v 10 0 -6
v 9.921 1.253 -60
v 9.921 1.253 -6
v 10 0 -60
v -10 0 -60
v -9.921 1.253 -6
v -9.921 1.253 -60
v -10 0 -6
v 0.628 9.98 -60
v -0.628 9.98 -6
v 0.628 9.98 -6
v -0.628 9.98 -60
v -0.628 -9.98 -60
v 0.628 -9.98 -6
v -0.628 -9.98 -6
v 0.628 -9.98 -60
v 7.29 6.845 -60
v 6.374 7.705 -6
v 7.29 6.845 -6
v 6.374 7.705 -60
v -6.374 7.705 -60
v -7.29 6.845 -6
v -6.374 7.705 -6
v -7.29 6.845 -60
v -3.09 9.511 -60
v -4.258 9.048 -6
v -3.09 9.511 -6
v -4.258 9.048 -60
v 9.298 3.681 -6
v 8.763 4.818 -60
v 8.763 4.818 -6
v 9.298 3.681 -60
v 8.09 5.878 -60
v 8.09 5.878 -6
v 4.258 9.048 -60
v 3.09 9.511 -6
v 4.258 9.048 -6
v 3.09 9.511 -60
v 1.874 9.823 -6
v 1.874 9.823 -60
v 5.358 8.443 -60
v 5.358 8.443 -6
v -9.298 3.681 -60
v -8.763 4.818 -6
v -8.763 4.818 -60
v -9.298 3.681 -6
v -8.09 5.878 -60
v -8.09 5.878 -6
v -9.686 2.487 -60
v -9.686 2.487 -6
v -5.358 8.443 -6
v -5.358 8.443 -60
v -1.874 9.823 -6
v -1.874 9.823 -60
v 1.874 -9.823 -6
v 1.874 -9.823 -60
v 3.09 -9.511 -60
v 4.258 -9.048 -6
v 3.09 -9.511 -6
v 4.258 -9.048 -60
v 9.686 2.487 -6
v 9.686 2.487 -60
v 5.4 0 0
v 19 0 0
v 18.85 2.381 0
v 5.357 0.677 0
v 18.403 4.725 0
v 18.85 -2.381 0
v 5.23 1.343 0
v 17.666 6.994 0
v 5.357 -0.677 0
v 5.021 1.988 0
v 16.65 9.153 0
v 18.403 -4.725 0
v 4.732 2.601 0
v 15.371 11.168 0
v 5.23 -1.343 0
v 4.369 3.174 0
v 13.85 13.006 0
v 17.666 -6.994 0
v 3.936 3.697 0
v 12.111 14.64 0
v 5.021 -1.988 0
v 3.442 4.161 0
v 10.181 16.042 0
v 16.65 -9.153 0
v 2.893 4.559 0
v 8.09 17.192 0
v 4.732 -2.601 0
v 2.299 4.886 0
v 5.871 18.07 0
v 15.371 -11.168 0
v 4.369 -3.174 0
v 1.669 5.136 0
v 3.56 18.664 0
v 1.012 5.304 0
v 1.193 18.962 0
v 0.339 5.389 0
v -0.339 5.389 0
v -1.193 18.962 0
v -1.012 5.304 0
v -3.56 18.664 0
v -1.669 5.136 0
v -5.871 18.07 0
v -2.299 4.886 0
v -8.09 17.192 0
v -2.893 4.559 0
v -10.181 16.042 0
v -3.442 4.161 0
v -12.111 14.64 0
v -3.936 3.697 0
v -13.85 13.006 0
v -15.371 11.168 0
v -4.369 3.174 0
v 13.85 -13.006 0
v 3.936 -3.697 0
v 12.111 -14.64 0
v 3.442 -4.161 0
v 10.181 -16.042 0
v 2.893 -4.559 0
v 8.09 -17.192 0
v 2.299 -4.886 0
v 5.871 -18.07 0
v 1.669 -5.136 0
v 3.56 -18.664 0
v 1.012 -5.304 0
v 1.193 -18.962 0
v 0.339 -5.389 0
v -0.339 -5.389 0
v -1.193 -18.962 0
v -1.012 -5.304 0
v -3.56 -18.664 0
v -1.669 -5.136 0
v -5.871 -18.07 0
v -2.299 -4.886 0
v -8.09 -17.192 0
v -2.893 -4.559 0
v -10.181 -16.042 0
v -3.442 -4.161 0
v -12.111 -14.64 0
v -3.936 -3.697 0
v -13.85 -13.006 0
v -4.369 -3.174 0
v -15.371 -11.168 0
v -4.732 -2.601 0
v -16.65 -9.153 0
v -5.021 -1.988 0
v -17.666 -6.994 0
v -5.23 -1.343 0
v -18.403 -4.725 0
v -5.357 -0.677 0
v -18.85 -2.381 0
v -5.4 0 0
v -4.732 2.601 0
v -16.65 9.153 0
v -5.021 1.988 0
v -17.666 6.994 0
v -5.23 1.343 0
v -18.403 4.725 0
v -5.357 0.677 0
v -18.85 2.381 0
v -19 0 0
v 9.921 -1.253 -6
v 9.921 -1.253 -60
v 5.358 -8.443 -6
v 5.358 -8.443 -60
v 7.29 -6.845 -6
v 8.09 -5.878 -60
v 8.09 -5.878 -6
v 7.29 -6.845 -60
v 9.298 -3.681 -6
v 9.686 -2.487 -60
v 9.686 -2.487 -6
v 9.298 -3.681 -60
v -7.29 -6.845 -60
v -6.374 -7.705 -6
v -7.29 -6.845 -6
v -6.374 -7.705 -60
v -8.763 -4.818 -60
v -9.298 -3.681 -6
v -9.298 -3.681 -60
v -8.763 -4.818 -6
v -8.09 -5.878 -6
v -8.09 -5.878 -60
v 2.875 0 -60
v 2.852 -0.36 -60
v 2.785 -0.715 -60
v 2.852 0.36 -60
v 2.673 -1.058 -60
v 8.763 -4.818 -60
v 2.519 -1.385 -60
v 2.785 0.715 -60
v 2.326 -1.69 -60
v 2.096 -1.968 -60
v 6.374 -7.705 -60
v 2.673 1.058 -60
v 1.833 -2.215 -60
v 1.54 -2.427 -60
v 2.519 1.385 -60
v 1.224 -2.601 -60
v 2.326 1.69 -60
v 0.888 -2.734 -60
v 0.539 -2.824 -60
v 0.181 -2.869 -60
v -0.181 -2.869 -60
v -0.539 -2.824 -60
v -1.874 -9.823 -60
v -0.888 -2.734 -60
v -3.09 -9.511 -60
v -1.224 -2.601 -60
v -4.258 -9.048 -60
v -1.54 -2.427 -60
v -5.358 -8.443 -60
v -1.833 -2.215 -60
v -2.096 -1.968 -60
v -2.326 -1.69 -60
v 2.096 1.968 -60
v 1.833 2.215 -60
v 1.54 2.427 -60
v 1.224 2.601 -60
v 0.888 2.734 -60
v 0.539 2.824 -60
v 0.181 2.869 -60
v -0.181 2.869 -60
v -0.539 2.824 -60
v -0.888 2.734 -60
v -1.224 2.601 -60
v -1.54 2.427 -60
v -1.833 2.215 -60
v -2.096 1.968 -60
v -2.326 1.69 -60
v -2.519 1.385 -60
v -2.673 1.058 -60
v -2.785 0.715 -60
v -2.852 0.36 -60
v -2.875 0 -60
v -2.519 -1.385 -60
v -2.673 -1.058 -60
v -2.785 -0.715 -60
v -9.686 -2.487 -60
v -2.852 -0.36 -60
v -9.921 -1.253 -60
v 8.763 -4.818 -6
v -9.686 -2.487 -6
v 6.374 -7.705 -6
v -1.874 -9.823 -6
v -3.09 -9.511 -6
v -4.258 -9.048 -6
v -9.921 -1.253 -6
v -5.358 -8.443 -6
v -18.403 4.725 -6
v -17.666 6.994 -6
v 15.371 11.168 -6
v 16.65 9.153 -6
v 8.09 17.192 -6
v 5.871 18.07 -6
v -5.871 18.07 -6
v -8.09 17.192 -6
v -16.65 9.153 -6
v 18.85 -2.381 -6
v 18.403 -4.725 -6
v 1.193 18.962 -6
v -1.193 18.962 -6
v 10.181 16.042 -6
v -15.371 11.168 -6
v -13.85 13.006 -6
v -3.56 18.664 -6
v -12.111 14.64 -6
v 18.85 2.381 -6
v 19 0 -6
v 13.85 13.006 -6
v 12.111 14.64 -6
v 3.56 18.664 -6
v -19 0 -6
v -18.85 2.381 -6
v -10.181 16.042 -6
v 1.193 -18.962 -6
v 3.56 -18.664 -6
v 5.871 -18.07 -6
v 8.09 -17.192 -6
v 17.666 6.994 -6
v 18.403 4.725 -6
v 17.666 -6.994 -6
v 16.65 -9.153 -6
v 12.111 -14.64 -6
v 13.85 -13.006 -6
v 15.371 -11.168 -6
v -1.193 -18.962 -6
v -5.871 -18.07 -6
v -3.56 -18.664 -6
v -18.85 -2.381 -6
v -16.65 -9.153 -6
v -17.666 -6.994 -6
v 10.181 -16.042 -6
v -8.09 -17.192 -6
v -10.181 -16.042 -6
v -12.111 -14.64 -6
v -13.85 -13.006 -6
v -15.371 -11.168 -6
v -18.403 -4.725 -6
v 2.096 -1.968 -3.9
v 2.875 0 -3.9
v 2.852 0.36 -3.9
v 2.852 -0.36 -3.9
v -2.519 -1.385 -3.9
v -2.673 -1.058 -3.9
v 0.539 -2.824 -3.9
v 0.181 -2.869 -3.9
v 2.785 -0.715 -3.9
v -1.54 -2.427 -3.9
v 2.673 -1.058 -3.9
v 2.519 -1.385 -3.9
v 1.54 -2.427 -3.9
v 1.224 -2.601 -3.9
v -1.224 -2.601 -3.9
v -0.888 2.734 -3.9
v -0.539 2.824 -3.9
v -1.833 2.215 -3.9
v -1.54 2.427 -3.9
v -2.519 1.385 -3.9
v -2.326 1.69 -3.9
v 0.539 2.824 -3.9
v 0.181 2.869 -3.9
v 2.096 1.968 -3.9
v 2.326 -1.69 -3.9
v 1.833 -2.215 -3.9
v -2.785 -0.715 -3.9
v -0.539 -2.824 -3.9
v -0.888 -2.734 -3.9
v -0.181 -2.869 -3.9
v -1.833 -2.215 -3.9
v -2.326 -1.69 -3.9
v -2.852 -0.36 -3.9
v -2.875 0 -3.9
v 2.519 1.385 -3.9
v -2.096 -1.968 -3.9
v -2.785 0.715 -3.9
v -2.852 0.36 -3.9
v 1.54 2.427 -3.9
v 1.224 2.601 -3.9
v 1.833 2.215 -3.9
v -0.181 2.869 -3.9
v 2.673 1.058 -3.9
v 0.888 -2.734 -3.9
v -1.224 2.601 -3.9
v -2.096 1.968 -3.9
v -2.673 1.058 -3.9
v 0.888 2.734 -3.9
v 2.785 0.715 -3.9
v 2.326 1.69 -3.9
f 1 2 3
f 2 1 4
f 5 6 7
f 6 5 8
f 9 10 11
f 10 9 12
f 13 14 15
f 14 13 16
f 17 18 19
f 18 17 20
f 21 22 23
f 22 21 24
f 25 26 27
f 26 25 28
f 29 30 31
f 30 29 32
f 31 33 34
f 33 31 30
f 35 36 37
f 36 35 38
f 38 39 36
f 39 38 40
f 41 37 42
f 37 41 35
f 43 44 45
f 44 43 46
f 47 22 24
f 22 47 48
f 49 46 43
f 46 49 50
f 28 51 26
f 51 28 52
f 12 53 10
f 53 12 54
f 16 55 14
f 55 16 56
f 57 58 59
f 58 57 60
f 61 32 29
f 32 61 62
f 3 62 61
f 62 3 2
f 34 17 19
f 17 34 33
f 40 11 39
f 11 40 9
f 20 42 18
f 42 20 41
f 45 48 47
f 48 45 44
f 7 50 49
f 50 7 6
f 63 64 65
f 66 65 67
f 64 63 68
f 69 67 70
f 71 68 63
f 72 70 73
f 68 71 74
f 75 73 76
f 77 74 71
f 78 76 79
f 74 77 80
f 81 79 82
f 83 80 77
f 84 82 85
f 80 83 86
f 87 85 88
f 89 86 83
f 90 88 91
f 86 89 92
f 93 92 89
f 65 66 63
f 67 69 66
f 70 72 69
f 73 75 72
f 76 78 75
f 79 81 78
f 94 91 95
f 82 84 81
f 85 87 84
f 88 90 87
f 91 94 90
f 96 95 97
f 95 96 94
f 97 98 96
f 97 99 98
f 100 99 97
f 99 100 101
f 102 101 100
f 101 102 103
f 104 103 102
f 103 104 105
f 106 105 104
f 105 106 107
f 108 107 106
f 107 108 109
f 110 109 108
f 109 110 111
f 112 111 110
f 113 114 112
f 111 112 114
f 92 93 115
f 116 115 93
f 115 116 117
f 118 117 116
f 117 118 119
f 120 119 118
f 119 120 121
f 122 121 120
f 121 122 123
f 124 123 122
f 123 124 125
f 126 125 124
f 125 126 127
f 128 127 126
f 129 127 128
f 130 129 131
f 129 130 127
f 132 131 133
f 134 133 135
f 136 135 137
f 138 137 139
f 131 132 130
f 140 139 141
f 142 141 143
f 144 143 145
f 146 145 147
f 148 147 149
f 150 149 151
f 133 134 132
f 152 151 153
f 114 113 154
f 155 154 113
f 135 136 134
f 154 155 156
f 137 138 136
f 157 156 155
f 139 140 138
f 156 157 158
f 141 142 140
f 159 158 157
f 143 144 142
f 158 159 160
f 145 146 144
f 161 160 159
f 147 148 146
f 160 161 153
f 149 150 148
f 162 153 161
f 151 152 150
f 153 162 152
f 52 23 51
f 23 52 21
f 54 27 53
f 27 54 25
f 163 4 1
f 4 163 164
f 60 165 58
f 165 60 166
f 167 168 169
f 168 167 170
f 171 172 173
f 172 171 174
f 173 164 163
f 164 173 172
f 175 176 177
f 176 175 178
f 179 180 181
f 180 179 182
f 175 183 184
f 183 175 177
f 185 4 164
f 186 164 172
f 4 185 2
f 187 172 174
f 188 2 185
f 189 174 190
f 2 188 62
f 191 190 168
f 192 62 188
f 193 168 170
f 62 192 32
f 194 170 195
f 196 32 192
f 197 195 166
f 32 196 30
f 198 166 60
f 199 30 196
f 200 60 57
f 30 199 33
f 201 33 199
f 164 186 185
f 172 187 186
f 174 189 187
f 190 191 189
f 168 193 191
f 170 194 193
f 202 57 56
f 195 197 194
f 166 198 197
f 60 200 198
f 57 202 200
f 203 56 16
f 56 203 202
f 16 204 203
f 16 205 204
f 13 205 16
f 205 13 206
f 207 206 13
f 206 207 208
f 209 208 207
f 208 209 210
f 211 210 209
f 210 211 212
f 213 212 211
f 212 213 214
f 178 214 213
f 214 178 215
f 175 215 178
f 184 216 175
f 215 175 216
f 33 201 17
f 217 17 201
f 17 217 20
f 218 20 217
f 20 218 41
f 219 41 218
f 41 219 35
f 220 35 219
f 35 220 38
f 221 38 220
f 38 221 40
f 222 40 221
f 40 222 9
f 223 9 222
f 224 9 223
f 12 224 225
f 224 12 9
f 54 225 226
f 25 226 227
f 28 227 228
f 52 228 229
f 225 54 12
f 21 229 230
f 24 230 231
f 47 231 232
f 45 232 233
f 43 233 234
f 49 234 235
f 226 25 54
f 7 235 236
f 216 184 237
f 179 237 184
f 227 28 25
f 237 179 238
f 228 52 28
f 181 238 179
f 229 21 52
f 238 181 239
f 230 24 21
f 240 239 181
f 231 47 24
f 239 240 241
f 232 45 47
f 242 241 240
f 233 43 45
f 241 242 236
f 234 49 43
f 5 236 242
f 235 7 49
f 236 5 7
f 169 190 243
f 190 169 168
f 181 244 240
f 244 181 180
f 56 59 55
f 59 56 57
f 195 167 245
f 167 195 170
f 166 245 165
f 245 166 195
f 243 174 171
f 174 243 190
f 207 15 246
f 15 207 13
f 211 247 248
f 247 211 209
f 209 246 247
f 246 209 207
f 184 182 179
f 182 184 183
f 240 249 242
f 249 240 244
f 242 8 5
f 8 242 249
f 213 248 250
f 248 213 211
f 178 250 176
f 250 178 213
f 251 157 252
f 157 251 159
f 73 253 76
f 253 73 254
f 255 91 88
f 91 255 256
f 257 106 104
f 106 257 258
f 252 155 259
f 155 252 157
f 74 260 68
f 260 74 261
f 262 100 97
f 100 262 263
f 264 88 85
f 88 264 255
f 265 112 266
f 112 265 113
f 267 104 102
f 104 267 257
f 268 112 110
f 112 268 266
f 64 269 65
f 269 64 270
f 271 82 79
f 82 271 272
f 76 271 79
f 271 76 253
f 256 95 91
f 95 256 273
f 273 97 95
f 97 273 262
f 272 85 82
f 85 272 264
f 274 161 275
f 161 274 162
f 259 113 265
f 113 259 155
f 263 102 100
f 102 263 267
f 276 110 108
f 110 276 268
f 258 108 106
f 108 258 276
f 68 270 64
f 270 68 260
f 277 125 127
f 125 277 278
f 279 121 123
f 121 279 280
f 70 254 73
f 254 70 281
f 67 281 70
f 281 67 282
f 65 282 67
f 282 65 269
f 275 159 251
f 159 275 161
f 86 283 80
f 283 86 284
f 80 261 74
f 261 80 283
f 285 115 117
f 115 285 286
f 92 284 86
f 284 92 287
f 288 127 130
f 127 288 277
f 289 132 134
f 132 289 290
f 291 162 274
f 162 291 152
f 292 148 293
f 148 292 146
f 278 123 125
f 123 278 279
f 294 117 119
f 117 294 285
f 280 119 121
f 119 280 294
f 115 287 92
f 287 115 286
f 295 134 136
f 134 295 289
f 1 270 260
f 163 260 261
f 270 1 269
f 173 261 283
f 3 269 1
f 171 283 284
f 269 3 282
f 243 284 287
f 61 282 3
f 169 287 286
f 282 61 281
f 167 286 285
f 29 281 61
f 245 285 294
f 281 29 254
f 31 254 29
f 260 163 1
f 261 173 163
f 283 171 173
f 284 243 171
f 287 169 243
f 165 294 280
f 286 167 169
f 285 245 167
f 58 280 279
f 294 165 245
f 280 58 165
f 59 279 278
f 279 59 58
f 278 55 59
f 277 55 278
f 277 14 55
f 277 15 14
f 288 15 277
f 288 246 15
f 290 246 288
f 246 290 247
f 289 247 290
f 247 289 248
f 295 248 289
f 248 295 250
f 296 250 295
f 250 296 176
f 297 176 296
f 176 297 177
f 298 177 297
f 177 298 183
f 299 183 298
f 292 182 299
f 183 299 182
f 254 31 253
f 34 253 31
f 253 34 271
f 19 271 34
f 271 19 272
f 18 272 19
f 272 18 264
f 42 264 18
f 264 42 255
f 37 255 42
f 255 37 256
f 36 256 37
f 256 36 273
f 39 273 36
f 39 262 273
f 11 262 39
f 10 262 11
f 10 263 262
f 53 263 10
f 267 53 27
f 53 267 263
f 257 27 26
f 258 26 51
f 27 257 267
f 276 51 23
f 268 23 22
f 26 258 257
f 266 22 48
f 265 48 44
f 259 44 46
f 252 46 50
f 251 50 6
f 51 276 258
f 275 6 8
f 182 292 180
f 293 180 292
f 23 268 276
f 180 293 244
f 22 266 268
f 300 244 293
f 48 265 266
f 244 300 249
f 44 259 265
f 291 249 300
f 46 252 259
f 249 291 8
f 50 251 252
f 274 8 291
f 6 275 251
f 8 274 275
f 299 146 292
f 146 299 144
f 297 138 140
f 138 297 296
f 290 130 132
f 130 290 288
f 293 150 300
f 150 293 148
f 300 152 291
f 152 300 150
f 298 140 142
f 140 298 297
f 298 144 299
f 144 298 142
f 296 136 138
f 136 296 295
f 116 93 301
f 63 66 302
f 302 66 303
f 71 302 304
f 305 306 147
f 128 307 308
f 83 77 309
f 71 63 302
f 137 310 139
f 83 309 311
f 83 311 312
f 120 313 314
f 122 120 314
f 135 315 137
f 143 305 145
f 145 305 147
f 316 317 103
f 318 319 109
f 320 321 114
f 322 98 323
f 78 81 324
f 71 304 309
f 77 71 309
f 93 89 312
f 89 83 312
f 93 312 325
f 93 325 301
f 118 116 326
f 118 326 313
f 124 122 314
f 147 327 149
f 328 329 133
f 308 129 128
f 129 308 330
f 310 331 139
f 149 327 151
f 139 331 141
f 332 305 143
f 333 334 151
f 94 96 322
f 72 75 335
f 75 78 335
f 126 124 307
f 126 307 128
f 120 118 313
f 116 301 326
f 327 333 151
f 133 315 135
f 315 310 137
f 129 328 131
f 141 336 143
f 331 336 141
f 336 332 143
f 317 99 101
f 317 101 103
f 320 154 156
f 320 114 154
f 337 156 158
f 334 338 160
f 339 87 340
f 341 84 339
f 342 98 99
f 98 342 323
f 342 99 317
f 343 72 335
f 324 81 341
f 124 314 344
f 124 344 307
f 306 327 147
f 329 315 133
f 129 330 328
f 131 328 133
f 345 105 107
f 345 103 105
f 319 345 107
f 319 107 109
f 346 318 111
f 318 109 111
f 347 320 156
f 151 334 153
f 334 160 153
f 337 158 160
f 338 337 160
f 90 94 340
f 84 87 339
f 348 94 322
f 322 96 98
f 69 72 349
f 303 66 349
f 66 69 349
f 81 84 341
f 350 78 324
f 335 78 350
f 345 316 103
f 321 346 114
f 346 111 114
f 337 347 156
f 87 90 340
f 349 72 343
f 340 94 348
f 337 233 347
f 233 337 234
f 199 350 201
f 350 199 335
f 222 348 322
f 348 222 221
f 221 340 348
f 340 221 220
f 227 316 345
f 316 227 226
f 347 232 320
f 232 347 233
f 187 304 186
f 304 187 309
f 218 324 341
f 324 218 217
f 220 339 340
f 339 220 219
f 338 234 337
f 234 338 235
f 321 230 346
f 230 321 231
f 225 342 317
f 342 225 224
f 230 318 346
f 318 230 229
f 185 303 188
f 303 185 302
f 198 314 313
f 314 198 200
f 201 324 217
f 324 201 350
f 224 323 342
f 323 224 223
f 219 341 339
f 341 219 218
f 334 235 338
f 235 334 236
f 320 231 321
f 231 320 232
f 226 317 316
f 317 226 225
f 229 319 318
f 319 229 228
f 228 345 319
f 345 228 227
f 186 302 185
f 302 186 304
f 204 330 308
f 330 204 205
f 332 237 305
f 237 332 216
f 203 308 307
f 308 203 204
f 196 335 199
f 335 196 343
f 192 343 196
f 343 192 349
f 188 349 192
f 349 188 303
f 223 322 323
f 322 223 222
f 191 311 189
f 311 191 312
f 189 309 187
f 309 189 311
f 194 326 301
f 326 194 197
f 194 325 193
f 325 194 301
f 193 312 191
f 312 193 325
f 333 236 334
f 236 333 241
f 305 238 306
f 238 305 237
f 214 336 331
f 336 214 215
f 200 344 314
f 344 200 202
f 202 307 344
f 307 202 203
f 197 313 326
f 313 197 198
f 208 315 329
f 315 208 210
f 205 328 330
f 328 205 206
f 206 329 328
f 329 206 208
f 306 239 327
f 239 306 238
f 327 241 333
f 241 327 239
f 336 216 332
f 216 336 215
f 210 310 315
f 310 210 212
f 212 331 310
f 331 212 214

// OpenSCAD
$fn = 50;


difference() {
	union() {
		translate(v = [0, 0, -60.0000000000]) {
			cylinder(h = 60, r = 10.0000000000);
		}
		translate(v = [0, 0, -6.0000000000]) {
			cylinder(h = 6, r = 19.0000000000);
		}
	}
	union() {
		translate(v = [0, 0, 0]) {
			rotate(a = [0, 0, 0]) {
				difference() {
					union() {
						#translate(v = [0, 0, -60.0000000000]) {
							cylinder(h = 60, r = 2.6000000000);
						}
						#translate(v = [0, 0, -3.9000000000]) {
							cylinder(h = 3.9000000000, r = 10.0000000000, r1 = 2.8750000000, r2 = 5.4000000000);
						}
						#translate(v = [0, 0, -60.0000000000]) {
							cylinder(h = 60, r = 2.8750000000);
						}
						#translate(v = [0, 0, -60.0000000000]) {
							cylinder(h = 60, r = 2.6000000000);
						}
					}
					union();
				}
			}
		}
	}
}
